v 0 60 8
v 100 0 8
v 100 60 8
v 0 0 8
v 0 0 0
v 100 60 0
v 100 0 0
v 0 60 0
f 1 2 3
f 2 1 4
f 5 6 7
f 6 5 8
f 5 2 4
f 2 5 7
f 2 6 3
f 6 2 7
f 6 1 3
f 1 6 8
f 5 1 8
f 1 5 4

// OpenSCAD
// test_rect.scad
// Ground truth: 100mm × 60mm rectangle, sharp corners
// Validates: scale accuracy on straight edges

width  = 100;
depth  = 60;
height = 8;

cube([width, depth, height]);
